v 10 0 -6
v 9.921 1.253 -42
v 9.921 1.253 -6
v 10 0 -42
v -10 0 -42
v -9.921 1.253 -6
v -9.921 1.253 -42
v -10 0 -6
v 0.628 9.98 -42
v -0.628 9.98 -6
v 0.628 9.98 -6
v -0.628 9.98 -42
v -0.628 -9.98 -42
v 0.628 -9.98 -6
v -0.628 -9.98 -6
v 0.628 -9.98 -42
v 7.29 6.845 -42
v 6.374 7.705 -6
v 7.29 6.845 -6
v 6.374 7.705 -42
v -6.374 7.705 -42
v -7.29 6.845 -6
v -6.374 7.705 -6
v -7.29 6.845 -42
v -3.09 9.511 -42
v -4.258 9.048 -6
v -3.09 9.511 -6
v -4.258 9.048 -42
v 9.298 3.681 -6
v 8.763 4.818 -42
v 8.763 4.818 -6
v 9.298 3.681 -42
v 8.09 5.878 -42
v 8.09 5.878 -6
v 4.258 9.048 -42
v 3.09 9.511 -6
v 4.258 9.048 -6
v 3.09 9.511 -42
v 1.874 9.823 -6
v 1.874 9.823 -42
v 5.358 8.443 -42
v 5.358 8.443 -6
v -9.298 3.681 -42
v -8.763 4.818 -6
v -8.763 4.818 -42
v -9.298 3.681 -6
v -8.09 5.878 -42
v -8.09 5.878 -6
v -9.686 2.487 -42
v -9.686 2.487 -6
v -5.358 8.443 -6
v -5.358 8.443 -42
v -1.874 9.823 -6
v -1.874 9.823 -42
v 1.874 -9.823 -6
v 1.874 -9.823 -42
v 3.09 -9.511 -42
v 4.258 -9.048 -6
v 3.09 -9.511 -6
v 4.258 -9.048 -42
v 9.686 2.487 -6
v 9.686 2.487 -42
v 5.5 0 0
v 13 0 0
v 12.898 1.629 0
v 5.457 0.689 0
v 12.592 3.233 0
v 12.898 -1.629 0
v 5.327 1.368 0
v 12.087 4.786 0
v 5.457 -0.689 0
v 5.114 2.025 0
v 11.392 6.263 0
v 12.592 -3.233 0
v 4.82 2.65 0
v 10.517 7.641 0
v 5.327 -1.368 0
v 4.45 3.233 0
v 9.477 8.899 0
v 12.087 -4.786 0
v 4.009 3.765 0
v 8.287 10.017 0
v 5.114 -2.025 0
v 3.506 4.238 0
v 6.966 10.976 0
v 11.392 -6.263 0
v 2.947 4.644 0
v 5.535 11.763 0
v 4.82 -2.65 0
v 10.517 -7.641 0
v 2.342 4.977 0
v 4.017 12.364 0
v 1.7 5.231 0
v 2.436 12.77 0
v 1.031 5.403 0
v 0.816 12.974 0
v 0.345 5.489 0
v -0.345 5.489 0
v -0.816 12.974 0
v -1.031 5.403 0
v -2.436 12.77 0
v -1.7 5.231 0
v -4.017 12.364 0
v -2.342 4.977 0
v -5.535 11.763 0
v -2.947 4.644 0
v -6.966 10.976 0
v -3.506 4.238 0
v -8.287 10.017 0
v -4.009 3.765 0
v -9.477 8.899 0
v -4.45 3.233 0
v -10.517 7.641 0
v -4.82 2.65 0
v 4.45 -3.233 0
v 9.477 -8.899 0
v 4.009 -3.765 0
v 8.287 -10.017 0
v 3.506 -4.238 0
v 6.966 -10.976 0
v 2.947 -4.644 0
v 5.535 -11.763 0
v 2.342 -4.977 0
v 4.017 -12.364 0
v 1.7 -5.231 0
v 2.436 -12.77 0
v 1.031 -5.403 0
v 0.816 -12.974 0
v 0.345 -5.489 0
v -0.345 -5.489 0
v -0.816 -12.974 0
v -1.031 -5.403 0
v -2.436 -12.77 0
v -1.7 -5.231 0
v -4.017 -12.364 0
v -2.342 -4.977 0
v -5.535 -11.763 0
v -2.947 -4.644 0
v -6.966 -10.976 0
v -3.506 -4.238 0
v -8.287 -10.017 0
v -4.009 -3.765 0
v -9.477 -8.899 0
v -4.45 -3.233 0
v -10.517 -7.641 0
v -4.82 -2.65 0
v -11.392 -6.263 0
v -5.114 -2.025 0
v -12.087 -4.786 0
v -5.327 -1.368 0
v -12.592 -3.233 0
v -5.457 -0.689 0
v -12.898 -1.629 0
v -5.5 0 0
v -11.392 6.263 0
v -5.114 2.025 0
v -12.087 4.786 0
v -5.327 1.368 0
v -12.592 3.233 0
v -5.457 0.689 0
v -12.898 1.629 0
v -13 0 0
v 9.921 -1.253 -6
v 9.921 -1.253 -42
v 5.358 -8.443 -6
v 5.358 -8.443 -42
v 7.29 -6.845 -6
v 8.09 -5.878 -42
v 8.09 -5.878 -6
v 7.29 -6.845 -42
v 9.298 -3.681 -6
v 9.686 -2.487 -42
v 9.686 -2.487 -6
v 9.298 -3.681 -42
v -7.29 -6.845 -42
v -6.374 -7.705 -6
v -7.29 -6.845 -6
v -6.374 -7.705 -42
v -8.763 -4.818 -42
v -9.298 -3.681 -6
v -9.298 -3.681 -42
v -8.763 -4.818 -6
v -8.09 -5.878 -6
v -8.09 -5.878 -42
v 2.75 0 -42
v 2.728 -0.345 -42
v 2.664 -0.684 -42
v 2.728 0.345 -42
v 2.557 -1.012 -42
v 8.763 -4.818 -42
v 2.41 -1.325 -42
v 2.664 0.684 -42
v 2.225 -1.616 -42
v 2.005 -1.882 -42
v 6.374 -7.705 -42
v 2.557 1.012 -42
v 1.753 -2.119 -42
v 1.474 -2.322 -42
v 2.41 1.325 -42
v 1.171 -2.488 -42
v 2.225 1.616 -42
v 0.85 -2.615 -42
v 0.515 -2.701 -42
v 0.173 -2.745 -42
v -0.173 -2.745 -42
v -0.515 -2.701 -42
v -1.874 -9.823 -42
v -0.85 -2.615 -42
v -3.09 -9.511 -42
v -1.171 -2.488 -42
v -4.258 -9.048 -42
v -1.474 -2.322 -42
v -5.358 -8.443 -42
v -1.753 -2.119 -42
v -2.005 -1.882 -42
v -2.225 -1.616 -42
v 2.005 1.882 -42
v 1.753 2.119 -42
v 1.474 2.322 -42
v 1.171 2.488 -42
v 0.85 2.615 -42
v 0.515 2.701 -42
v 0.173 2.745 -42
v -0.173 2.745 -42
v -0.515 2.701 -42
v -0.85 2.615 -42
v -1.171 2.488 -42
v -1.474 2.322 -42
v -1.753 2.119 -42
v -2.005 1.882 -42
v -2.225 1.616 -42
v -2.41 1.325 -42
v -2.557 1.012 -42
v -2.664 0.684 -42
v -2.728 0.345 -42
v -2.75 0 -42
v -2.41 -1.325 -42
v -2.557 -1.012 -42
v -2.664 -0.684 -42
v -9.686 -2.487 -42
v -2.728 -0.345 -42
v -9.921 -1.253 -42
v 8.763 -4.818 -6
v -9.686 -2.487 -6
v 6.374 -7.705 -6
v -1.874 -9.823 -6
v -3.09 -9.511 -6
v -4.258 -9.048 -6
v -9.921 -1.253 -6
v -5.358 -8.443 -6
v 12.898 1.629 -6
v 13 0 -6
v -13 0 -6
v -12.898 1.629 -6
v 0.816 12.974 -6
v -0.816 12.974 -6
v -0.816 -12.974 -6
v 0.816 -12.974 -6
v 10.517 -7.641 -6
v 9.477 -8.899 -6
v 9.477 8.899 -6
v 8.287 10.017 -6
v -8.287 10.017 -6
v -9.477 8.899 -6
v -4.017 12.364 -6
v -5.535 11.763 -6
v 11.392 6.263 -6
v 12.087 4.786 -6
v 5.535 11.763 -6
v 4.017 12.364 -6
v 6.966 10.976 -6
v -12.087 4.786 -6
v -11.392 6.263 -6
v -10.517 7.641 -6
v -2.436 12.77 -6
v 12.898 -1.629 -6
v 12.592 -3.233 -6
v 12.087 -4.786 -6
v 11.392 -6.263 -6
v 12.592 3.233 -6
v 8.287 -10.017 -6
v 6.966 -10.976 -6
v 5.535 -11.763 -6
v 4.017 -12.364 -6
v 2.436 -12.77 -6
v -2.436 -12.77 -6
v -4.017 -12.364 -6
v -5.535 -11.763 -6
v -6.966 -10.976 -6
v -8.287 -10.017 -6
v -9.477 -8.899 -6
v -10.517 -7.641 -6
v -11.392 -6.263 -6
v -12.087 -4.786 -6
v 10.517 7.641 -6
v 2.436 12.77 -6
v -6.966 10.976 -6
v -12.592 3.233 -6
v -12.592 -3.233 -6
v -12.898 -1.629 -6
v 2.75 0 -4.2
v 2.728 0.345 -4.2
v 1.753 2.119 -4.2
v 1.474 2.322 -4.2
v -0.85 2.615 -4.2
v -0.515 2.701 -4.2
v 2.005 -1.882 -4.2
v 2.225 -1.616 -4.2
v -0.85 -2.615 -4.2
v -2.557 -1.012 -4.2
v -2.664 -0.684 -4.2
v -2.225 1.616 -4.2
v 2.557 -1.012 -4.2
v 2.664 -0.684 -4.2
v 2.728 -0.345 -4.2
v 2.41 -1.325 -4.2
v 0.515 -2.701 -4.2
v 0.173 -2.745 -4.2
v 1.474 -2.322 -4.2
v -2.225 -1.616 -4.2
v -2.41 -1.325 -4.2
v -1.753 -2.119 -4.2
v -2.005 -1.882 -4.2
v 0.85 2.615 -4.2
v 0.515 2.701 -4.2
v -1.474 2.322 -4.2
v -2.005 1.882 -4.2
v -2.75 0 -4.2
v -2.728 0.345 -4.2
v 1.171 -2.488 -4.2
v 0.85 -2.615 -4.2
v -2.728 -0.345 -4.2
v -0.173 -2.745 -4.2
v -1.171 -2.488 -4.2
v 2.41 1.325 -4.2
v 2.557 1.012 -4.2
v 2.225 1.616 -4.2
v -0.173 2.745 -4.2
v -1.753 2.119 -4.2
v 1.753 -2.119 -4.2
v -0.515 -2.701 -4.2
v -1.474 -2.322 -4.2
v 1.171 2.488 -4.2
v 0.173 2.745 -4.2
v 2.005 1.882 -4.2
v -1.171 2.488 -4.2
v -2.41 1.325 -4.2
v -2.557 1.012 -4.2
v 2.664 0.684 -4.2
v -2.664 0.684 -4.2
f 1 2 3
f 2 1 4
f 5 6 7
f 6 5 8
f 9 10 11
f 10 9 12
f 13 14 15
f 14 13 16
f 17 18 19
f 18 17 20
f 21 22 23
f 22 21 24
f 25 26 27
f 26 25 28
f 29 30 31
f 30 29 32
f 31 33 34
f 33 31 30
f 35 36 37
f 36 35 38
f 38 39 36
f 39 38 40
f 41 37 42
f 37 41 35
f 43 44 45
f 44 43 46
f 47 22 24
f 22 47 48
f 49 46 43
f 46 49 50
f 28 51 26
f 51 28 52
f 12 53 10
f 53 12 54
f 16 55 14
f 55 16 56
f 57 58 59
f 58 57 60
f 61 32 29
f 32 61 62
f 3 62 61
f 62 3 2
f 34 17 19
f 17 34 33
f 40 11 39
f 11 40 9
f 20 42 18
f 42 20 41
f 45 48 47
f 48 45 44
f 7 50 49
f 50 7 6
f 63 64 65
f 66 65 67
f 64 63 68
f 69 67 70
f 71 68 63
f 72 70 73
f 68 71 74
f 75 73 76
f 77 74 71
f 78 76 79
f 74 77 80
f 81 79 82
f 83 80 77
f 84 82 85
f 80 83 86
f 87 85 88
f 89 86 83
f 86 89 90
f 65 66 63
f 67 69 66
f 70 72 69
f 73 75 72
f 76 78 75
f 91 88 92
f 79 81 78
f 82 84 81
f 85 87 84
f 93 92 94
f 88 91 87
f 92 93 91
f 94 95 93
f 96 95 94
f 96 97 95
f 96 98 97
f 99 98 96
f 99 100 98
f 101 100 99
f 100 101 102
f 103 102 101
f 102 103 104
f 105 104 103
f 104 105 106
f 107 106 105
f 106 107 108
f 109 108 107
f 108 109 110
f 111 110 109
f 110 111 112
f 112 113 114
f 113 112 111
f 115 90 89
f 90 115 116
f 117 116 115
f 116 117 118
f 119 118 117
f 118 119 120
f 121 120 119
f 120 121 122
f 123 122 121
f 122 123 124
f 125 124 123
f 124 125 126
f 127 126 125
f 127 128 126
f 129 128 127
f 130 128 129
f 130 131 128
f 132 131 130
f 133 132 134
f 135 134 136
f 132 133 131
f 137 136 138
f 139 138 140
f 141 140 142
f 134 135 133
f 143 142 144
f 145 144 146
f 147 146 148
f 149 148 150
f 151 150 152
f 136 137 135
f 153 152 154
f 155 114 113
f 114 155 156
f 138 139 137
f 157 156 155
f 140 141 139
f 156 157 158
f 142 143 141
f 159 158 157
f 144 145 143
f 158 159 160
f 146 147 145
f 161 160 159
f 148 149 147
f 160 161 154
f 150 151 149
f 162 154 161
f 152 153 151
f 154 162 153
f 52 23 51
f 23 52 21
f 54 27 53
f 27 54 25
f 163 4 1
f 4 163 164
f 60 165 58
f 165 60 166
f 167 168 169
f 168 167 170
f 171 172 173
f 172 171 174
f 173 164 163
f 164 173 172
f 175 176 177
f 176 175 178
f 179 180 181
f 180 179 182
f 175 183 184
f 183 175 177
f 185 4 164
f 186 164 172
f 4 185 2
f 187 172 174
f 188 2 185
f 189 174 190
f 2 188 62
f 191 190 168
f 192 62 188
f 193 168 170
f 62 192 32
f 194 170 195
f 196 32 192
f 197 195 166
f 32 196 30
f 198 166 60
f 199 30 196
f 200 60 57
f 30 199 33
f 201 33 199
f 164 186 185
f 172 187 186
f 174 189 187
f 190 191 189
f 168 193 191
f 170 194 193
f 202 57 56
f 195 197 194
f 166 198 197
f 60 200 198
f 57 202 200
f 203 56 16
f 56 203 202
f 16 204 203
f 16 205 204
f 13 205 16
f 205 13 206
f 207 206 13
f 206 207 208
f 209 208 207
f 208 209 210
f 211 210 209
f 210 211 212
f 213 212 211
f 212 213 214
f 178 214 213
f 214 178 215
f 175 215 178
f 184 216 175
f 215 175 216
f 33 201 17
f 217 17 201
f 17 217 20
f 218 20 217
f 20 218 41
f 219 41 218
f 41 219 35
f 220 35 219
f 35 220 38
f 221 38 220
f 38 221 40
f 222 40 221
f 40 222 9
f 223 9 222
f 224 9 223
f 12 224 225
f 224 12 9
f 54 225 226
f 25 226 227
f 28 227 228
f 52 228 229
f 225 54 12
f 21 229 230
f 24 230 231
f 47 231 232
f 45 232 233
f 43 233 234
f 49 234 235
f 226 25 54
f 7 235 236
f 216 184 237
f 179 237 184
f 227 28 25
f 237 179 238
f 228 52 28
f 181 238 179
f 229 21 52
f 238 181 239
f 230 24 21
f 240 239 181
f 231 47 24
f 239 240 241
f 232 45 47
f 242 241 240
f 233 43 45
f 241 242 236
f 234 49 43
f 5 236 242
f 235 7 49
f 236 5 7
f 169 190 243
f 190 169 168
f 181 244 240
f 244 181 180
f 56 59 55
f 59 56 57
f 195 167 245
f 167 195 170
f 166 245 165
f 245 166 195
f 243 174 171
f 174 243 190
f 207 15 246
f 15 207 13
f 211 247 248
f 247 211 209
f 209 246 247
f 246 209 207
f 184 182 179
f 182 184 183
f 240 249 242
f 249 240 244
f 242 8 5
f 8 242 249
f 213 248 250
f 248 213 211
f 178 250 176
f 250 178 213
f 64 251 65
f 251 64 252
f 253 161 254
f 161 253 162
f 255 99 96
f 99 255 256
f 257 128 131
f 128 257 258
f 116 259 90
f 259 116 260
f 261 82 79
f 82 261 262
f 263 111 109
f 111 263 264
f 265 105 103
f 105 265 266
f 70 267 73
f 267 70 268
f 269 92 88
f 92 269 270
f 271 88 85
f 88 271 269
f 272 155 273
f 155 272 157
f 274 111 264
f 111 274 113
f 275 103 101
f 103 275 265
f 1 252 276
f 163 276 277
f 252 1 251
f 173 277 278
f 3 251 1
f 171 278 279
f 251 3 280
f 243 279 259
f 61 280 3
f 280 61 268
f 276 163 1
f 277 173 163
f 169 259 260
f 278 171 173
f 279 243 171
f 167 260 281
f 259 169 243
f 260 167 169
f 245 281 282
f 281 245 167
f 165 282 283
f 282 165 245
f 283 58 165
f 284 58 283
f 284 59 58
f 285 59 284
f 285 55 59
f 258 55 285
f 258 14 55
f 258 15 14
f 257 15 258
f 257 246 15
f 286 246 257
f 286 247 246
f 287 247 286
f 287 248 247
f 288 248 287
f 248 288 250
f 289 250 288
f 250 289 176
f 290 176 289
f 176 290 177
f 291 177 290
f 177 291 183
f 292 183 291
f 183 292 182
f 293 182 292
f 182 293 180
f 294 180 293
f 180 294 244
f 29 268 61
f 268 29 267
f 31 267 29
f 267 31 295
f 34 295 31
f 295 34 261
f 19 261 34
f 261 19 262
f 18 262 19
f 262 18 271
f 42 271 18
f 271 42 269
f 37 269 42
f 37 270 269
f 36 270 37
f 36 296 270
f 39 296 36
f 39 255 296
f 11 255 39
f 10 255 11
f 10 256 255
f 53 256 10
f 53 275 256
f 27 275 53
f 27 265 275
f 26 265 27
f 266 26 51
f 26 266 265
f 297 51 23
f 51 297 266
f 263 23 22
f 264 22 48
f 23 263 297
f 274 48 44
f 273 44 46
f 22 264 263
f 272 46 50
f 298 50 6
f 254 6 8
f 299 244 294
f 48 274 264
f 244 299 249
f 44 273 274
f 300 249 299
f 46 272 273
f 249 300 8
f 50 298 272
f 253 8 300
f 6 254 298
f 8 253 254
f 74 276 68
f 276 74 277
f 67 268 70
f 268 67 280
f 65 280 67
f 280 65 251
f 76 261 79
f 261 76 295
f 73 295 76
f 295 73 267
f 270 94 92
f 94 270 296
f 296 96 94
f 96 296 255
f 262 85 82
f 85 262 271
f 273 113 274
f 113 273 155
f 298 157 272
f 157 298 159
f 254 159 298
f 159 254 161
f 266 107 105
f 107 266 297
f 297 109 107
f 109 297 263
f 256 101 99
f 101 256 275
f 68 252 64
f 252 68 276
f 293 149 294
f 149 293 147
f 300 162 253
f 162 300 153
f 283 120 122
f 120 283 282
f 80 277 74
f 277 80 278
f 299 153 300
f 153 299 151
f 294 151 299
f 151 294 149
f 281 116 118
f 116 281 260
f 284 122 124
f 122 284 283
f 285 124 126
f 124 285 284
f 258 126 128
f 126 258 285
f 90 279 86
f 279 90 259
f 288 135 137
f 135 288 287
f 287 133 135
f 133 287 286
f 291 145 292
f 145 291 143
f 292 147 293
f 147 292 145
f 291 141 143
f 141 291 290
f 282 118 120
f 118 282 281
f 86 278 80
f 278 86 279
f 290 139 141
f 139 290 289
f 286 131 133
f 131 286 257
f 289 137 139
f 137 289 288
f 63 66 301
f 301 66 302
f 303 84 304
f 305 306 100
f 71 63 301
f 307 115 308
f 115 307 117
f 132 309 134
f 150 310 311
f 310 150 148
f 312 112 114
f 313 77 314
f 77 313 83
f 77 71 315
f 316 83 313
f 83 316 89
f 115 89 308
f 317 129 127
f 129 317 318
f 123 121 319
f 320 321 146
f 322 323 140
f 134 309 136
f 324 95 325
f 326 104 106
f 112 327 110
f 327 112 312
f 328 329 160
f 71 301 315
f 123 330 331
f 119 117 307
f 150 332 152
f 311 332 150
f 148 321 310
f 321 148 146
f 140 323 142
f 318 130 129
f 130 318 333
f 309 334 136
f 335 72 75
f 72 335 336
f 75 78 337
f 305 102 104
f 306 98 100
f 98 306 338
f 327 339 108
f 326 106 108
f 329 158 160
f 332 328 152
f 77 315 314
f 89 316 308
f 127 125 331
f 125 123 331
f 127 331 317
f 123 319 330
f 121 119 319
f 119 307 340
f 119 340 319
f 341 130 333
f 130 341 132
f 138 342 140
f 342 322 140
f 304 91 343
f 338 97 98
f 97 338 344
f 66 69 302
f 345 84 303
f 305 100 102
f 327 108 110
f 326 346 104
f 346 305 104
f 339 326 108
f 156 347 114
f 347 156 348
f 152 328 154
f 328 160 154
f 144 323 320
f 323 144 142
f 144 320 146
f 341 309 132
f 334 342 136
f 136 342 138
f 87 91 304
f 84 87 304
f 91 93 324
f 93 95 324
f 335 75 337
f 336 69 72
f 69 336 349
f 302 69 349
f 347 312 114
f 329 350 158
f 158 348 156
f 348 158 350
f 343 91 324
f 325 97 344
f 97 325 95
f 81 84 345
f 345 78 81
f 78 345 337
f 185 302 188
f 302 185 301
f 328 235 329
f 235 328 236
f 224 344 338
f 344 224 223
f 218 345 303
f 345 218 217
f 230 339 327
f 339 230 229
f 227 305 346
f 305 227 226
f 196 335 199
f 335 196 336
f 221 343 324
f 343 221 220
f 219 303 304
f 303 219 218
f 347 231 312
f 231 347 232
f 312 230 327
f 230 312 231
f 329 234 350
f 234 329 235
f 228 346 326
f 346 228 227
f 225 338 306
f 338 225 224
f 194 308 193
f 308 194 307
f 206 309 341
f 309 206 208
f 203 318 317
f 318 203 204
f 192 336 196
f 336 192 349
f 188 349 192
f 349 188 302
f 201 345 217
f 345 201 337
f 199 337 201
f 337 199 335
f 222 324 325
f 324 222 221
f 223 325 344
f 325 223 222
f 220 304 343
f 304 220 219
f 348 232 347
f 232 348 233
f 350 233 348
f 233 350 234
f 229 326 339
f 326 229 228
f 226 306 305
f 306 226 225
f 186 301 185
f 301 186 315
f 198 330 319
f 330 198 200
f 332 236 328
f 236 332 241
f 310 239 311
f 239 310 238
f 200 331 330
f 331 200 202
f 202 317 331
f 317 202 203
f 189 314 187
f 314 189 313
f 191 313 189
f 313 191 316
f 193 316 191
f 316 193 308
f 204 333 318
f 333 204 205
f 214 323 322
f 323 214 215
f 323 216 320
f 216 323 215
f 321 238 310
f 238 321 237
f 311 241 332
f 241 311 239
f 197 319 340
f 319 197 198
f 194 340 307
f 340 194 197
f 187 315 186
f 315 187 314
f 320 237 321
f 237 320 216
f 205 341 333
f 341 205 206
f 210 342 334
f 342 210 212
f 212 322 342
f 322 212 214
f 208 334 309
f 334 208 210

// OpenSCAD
$fn = 50;


difference() {
	union() {
		translate(v = [0, 0, -42.0000000000]) {
			cylinder(h = 42, r = 10.0000000000);
		}
		translate(v = [0, 0, -6.0000000000]) {
			cylinder(h = 6, r = 13.0000000000);
		}
	}
	union() {
		translate(v = [0, 0, 0]) {
			rotate(a = [0, 0, 0]) {
				difference() {
					union() {
						#translate(v = [0, 0, -42.0000000000]) {
							cylinder(h = 42, r = 2.2500000000);
						}
						#translate(v = [0, 0, -4.2000000000]) {
							cylinder(h = 4.2000000000, r1 = 2.7500000000, r2 = 5.5000000000);
						}
						#translate(v = [0, 0, -42.0000000000]) {
							cylinder(h = 42, r = 2.7500000000);
						}
						#translate(v = [0, 0, -42.0000000000]) {
							cylinder(h = 42, r = 2.2500000000);
						}
					}
					union();
				}
			}
		}
	}
}
